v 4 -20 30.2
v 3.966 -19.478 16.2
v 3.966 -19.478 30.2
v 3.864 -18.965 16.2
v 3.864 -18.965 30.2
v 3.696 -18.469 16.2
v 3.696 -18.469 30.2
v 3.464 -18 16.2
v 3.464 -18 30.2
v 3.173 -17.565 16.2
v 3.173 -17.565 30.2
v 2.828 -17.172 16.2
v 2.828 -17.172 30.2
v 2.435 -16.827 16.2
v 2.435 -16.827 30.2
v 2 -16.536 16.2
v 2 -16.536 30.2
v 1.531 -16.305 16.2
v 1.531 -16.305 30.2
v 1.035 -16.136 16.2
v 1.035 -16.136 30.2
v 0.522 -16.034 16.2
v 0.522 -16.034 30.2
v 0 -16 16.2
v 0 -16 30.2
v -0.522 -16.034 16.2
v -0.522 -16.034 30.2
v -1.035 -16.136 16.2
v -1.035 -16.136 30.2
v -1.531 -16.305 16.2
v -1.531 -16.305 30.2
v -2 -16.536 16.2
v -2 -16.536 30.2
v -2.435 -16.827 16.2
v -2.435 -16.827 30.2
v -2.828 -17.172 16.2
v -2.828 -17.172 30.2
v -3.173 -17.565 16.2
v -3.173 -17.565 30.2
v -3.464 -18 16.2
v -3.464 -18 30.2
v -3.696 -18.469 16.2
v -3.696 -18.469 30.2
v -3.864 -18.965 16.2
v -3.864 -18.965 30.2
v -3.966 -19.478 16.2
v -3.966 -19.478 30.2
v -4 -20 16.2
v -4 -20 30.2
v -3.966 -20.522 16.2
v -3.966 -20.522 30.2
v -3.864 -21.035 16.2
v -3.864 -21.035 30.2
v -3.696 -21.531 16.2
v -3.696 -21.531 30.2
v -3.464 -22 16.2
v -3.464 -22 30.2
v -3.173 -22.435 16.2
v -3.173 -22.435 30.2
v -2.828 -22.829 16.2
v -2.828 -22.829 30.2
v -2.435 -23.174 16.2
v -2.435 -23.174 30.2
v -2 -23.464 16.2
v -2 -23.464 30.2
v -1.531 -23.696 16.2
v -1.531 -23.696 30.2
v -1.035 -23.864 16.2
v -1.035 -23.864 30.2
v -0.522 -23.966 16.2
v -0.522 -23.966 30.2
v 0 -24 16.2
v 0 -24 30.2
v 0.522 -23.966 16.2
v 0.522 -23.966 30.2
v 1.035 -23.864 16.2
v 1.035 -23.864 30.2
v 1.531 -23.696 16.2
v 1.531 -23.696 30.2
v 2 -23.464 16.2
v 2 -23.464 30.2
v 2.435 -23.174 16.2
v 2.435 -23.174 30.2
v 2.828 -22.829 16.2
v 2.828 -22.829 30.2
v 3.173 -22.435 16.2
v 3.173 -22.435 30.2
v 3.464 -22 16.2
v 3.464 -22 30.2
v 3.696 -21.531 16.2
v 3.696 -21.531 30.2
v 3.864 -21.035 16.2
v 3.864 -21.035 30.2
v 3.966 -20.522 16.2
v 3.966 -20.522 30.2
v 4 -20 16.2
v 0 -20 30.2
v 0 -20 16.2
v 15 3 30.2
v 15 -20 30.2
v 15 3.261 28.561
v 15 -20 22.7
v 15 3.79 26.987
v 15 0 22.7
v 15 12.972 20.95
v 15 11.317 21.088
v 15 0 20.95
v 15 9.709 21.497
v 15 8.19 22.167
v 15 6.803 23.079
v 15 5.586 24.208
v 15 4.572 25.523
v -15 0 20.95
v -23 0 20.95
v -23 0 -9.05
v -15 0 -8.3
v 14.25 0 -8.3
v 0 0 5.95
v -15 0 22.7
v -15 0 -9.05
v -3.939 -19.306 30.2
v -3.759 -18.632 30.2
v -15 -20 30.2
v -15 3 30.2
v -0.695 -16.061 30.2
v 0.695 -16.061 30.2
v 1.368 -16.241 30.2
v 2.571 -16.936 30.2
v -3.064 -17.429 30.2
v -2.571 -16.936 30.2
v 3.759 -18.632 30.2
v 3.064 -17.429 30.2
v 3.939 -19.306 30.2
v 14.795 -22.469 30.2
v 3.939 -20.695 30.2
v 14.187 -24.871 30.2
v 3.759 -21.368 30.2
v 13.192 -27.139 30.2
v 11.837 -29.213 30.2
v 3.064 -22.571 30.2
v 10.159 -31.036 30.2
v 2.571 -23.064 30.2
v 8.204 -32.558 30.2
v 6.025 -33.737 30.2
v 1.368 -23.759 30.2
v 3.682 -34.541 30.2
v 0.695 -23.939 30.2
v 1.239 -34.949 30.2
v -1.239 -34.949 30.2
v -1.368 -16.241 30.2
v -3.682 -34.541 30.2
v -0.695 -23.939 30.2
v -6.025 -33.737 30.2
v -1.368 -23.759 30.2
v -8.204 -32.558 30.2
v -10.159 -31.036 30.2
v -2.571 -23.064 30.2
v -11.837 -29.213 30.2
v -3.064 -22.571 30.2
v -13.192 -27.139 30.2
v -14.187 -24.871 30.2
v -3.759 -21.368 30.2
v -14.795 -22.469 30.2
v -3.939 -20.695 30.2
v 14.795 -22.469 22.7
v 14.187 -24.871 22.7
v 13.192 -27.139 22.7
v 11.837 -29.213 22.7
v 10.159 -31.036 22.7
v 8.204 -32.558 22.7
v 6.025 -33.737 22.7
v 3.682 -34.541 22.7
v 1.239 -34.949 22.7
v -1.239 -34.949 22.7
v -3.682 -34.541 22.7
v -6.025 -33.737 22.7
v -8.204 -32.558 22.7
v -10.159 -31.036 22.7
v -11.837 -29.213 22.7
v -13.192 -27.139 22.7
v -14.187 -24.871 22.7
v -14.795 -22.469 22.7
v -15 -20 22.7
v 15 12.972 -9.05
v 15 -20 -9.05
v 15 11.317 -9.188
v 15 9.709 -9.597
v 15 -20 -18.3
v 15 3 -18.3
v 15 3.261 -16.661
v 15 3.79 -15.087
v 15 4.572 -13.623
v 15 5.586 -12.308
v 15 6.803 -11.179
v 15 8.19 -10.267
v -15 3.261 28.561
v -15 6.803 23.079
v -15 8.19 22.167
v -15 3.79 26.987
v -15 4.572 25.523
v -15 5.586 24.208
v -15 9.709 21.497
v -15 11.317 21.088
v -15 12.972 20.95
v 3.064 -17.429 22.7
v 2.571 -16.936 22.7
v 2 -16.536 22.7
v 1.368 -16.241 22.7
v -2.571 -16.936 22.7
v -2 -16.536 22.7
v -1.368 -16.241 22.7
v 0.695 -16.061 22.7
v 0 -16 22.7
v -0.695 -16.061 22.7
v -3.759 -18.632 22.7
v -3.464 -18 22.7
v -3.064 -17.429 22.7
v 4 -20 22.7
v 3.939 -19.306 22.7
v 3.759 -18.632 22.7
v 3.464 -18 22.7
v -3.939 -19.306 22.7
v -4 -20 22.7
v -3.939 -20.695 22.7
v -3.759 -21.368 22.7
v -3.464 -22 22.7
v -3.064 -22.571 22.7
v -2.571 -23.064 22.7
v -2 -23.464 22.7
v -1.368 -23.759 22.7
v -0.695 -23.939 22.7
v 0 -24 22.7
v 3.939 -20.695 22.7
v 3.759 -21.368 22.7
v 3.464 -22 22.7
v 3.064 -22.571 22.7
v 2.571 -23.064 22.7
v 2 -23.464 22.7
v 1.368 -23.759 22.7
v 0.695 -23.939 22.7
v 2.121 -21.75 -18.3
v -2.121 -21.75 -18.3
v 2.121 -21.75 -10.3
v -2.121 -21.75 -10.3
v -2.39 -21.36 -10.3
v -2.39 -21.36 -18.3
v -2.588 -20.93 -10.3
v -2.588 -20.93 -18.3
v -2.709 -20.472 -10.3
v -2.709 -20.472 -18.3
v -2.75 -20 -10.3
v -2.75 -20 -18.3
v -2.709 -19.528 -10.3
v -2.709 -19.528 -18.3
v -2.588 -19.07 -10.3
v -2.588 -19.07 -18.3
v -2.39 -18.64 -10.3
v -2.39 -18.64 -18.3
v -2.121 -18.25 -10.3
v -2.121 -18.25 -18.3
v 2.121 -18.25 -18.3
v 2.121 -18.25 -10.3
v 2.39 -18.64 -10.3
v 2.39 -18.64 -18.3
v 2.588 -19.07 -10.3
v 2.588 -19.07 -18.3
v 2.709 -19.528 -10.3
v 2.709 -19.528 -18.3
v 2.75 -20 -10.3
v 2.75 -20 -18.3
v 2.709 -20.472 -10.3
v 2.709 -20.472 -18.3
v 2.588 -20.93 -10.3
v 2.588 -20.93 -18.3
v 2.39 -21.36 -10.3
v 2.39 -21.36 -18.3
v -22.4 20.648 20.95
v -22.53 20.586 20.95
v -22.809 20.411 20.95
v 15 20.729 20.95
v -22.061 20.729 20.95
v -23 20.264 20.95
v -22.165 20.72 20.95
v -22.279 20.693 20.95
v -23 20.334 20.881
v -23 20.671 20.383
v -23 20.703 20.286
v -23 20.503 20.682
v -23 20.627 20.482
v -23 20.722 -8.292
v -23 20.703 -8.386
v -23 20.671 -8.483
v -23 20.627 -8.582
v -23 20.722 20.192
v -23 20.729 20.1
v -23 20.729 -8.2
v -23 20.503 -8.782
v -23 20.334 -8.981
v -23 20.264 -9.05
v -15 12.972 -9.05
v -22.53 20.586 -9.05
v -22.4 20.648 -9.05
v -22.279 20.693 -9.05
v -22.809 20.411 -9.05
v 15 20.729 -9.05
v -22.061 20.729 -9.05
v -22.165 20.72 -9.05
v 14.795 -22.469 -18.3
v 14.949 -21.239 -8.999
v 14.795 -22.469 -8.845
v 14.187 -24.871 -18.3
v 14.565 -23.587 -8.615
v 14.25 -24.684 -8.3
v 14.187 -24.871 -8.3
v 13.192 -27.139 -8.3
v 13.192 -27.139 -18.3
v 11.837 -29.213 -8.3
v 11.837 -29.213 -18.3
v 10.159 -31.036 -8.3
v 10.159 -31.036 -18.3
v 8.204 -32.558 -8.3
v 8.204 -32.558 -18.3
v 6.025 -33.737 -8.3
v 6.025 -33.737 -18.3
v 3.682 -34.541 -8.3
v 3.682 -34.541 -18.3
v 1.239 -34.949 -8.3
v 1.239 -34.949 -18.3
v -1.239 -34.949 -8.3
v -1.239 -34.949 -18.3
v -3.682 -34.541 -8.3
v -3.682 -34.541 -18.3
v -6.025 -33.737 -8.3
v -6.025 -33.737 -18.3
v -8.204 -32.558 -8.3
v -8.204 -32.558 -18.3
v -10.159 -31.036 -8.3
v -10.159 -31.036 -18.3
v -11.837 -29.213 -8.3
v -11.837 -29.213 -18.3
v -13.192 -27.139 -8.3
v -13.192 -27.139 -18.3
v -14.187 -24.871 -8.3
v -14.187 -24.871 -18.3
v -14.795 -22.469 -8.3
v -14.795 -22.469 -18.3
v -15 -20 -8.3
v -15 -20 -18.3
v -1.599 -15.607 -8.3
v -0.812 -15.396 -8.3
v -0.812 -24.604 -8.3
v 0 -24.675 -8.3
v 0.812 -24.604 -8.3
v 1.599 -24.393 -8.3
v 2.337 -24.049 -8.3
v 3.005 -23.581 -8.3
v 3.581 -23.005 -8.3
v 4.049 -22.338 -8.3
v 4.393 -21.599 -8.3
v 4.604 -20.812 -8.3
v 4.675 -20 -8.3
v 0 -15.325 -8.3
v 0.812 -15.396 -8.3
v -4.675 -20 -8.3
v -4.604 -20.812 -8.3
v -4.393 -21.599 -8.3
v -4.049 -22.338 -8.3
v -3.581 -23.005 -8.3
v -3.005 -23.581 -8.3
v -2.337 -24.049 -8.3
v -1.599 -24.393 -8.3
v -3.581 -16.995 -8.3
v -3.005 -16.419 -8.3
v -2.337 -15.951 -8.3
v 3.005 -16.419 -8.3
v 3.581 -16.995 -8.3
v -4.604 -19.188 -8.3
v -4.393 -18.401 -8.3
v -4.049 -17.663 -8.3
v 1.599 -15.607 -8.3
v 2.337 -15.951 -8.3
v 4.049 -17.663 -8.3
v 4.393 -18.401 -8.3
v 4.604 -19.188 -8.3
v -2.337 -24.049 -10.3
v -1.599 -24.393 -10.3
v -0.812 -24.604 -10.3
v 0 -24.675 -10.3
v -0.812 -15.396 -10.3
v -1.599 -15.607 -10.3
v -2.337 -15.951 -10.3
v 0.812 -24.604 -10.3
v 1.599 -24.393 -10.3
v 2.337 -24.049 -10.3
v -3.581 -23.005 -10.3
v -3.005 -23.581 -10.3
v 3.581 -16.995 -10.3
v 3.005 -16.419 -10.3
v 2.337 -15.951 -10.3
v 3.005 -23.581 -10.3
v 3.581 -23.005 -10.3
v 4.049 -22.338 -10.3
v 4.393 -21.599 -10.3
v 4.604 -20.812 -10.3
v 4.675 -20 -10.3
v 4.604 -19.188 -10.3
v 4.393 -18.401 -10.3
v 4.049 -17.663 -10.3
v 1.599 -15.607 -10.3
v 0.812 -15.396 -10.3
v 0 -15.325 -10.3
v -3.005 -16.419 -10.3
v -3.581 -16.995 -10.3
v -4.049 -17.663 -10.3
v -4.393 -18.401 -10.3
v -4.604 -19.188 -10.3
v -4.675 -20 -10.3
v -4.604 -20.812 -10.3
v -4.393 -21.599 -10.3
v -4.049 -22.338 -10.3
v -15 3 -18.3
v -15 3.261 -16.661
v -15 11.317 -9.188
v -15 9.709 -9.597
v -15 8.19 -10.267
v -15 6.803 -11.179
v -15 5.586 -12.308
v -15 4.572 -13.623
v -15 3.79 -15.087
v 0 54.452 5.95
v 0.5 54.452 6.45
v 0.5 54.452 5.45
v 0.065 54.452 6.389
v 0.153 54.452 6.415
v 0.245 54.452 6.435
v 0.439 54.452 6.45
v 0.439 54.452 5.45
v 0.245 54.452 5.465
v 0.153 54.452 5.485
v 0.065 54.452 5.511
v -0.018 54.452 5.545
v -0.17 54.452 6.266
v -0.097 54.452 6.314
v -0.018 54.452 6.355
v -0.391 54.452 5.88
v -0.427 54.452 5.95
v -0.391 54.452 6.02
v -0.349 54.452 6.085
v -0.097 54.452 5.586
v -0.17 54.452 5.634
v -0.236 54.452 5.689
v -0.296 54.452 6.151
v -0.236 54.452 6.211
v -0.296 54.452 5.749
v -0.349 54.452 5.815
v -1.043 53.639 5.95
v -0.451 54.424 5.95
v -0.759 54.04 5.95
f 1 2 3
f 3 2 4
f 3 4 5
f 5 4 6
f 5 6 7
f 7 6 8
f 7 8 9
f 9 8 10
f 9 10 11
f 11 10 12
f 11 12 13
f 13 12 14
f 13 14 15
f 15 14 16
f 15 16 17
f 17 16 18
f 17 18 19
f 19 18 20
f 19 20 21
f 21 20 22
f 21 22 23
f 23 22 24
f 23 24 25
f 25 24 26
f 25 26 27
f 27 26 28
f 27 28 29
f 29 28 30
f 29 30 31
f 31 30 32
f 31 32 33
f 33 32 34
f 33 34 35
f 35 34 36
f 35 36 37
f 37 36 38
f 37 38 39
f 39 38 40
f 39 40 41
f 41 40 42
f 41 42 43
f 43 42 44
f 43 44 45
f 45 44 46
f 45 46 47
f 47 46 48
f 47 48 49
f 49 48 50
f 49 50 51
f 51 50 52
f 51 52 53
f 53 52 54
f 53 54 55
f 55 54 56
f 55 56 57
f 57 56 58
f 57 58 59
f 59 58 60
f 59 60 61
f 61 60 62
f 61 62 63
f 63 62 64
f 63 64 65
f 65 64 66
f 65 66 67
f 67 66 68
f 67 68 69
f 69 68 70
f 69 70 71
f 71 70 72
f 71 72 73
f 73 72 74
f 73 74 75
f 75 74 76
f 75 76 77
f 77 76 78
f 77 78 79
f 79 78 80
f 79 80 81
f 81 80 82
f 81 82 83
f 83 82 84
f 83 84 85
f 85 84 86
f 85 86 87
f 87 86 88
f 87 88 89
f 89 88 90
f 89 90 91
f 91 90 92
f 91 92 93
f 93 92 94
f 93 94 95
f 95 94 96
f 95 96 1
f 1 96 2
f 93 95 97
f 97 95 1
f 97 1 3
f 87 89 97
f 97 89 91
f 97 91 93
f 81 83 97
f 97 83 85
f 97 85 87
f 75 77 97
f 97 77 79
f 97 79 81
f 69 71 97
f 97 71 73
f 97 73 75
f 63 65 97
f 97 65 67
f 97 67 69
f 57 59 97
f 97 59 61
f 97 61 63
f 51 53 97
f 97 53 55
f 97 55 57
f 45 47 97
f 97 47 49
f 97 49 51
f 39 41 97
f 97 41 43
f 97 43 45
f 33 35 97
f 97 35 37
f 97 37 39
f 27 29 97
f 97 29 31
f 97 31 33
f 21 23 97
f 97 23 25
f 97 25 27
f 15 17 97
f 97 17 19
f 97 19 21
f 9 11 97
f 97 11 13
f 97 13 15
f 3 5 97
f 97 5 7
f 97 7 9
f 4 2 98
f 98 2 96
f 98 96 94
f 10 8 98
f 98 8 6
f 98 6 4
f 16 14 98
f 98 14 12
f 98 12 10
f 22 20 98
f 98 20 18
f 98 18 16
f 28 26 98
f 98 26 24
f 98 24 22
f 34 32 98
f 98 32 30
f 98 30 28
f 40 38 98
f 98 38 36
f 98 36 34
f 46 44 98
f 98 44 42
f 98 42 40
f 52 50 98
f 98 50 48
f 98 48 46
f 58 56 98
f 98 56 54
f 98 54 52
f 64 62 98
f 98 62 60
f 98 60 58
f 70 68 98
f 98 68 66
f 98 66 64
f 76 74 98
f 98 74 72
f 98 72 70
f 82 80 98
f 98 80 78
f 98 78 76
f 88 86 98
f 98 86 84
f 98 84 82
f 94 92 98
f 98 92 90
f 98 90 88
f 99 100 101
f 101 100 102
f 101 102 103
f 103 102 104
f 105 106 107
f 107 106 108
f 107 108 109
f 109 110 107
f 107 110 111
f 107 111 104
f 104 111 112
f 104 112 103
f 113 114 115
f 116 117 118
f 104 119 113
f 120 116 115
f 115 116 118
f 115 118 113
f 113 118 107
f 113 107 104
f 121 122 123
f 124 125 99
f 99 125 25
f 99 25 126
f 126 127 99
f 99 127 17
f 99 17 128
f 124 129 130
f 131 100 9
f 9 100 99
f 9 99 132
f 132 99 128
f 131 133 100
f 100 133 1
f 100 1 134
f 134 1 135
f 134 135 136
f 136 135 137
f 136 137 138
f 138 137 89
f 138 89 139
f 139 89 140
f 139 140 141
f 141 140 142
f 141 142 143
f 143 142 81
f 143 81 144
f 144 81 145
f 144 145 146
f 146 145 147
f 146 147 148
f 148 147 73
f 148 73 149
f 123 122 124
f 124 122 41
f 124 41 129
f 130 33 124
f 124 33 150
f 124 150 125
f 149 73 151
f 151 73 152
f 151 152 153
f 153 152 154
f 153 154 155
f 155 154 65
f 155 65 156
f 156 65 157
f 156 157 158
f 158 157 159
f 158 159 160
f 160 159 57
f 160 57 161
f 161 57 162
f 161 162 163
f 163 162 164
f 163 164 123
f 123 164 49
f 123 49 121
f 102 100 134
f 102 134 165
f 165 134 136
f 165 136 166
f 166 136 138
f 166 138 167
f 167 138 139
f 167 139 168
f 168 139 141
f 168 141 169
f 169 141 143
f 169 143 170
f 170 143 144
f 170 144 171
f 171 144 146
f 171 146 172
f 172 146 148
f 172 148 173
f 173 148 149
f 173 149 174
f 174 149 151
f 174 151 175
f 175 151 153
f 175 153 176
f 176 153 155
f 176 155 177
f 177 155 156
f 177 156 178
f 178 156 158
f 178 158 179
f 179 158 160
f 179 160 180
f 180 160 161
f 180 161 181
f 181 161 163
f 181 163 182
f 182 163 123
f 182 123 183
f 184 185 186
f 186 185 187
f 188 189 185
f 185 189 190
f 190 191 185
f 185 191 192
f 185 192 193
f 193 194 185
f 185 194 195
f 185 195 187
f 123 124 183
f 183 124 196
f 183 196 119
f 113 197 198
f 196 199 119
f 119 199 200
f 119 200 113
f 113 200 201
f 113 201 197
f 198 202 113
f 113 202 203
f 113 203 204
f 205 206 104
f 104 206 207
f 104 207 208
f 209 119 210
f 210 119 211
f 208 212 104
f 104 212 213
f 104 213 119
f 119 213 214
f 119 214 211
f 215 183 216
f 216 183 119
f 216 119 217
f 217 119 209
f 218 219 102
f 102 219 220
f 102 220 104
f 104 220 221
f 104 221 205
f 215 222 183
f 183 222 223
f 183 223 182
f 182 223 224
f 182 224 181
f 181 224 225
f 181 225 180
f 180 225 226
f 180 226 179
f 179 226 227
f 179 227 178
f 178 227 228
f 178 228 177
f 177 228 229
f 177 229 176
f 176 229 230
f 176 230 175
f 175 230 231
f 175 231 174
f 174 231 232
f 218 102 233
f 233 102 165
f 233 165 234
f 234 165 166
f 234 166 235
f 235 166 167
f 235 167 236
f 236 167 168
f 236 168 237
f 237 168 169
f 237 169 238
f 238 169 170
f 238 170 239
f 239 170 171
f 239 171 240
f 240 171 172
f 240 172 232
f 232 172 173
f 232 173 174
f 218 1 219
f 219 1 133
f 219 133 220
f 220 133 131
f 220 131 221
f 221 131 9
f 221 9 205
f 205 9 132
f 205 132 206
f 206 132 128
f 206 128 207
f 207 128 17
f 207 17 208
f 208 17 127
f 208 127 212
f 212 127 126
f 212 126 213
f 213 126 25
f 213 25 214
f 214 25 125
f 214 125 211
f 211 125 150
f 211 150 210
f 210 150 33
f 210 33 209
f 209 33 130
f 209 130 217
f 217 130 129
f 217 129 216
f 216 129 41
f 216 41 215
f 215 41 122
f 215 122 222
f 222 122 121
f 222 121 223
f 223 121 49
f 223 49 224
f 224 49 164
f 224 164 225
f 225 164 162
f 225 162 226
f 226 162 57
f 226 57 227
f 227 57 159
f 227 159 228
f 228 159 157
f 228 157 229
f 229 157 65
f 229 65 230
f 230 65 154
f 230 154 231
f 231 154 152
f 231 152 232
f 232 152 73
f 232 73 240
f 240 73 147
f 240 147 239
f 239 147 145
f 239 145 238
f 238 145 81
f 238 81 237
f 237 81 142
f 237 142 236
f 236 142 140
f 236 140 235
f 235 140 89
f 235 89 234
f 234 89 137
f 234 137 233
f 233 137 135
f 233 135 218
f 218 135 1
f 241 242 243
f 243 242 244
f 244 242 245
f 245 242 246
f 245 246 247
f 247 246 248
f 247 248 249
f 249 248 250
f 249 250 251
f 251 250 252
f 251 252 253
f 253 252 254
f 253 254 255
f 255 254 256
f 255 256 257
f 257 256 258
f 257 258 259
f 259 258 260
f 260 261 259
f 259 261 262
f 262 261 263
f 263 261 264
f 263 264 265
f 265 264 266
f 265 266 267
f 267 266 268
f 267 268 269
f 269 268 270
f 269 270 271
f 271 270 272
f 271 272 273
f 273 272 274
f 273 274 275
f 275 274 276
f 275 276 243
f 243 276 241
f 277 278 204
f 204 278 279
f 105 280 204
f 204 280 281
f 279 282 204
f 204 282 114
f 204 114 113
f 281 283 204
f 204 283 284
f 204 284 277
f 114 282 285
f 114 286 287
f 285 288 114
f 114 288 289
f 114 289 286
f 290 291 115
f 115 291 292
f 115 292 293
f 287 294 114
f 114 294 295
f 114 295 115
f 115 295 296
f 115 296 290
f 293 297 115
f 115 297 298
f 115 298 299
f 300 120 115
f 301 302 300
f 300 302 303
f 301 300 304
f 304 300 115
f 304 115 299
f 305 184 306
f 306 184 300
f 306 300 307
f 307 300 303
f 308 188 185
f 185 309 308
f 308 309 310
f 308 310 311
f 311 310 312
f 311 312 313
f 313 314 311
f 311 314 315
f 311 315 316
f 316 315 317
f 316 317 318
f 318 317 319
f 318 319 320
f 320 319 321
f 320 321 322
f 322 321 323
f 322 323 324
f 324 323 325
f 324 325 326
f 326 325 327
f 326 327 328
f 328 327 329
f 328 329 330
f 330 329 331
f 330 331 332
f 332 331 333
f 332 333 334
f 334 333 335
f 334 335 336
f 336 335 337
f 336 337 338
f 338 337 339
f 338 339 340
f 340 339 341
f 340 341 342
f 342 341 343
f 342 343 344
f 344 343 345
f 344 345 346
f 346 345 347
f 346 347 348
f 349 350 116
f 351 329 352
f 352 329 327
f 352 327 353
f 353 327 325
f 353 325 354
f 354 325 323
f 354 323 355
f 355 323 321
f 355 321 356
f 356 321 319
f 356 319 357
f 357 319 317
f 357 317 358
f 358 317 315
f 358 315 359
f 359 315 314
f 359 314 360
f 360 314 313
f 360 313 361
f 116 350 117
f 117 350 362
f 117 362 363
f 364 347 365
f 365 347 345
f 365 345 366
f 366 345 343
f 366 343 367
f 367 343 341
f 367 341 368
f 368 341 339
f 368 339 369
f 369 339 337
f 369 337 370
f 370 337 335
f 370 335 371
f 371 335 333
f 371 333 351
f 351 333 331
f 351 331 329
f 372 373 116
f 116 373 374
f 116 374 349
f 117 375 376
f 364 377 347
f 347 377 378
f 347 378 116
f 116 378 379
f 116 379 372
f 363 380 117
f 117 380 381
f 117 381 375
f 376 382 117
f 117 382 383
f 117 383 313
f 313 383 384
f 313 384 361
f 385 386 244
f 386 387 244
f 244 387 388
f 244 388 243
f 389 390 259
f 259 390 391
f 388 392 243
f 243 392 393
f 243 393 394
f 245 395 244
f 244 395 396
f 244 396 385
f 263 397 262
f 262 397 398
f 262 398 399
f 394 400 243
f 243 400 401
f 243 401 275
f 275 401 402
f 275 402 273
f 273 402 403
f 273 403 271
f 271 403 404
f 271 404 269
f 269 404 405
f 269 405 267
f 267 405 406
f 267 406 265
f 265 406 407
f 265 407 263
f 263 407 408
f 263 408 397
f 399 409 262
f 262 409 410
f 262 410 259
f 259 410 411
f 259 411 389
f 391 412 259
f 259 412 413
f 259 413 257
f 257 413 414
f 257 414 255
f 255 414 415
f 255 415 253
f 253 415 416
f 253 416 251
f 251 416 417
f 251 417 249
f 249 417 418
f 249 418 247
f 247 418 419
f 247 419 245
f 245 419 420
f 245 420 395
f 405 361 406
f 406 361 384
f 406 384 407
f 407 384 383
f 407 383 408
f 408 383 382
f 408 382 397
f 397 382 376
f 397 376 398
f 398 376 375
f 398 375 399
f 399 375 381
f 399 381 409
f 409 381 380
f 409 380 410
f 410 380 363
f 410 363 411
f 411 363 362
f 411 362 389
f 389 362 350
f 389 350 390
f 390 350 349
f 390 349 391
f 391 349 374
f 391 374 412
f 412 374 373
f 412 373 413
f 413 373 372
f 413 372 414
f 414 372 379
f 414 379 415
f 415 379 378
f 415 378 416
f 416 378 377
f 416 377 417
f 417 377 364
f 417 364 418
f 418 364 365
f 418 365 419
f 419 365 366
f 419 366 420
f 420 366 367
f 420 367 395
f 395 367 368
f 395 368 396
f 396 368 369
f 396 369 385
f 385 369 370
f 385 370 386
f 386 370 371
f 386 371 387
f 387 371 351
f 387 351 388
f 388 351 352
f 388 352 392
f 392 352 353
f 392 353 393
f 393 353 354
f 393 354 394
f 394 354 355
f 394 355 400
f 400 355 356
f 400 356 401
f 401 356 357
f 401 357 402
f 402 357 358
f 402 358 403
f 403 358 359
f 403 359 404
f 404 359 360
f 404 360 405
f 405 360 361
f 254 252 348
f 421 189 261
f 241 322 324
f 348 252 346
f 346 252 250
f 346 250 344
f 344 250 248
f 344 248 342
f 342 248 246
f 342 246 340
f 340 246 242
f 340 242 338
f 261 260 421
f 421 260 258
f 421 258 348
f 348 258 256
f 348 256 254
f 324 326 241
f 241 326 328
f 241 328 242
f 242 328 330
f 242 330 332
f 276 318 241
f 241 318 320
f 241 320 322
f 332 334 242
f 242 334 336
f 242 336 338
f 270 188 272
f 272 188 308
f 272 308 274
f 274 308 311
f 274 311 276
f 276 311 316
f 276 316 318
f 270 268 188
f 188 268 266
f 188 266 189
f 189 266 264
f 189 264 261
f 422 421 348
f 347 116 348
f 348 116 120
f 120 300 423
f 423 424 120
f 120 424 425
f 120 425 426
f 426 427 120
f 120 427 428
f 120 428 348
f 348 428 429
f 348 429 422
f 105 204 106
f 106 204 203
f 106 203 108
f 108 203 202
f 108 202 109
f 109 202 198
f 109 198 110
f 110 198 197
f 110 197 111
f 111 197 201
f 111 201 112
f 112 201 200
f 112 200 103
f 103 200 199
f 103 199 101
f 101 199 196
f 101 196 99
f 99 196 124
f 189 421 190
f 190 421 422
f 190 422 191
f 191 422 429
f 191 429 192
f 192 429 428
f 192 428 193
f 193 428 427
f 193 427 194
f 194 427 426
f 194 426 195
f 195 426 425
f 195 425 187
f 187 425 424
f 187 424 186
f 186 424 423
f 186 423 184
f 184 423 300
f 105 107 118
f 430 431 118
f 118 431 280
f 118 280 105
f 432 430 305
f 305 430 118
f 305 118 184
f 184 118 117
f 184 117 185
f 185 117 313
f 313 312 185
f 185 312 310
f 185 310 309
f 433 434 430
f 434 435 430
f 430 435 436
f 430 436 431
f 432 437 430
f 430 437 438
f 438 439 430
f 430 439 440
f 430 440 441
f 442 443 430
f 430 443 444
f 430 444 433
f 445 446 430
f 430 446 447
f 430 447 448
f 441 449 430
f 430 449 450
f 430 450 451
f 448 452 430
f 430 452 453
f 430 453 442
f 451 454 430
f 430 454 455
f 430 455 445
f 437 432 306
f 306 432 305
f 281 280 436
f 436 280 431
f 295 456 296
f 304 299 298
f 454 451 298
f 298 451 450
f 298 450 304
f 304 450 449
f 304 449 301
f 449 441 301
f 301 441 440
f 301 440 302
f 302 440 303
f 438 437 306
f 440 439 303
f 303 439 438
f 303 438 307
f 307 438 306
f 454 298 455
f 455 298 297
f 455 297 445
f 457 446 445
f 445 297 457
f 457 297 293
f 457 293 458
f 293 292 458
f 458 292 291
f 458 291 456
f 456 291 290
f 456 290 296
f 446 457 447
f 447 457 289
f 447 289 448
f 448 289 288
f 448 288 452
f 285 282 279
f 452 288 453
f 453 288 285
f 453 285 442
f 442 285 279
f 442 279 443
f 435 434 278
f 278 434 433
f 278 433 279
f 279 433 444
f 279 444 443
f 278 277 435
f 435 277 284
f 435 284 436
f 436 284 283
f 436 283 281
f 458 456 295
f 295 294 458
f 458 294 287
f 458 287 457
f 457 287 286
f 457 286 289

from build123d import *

# Parameters (mm, degrees)
BOSS_EXTRUDE1_DEPTH      = 20.95
BOSS_EXTRUDE2_START      = -9.05
BOSS_EXTRUDE2_DEPTH      = 9.05
SKETCH6_R                = 2
CUT_EXTRUDE2_DEPTH       = 10
CUT_EXTRUDE3_DEPTH       = 2.75
CUT_EXTRUDE4_DEPTH       = 67.499081444
CUT_EXTRUDE4_DEPTH_BACK  = 67.499081444
SKETCH8_W                = 8.290514233
SKETCH8_H                = 3.25
SKETCH11_R               = 11.15
BEARING_HOLE_DEPTH       = 7.3
SKETCH12_W               = 46
SKETCH12_H               = 30
BOSS_EXTRUDE3_DEPTH      = 0.0001
BOSS_EXTRUDE4_DEPTH      = 9.25
BOSS_EXTRUDE4_DEPTH_BACK = 39.25
SKETCH14_W               = 31
SKETCH14_H               = 35
CUT_EXTRUDE5_DEPTH       = 74.138005393
SKETCH15_R               = 4
CUT_EXTRUDE6_DEPTH       = 77.644489906
SKETCH17_R               = 6.169612062
BOSS_EXTRUDE5_DEPTH      = 10
SKETCH18_R               = 4
BOSS_EXTRUDE6_DEPTH      = 14
SKETCH19_R               = 4.675
CUT_EXTRUDE7_DEPTH       = 2
BOSS_EXTRUDE7_START      = -39.25
SKETCH20_W               = 30
SKETCH20_H               = 3
BOSS_EXTRUDE7_DEPTH      = 48.5
FILLET1_R                = 10
SKETCH22_W               = 17.22069039
SKETCH22_H               = 30
CUT_EXTRUDE8_DEPTH       = 67.589629634
SKETCH25_W               = 38.779549847
SKETCH25_H               = 44.55932685
CUT_EXTRUDE10_DEPTH      = 72.152584865
BOSS_EXTRUDE9_DEPTH      = 40
CUT_EXTRUDE11_DEPTH      = 73.945914552
CUT_EXTRUDE12_DEPTH      = 71.955119264
CUT_EXTRUDE13_DEPTH      = 63.342538471
FILLET2_R                = 1


with BuildPart() as part:
    # Sketch2 → Boss-Extrude1 (new body)
    with BuildSketch(Plane.XY):
        with BuildLine():
            Line((-14.709485767, 40), (-23, 40))
            Line((-23, 40), (-23, 0))
            Line((-23, 0), (23, 0))
            Line((23, 0), (23, 40))
            Line((23, 40), (14.709485767, 40))
            ThreePointArc((14.709485767, 40), (0, 54.709485767), (-14.709485767, 40))
        make_face()
        with BuildLine():
            Line((-7.55, 18.241114036), (-7.55, 14.75))
            Line((-7.55, 14.75), (7.55, 14.75))
            Line((7.55, 14.75), (7.55, 18.241114036))
            Line((7.55, 18.241114036), (9.25, 18.241114036))
            Line((9.25, 18.241114036), (9.25, 21.160258306))
            ThreePointArc((9.25, 21.160258306), (0, 46.25), (-9.25, 21.160258306))
            Line((-9.25, 21.160258306), (-9.25, 18.241114036))
            Line((-9.25, 18.241114036), (-7.55, 18.241114036))
        make_face(mode=Mode.SUBTRACT)
    extrude(amount=BOSS_EXTRUDE1_DEPTH)

    # Sketch3 → Boss-Extrude2 (add)
    with BuildSketch(Plane.XY.offset(BOSS_EXTRUDE2_START)):
        with BuildLine():
            Line((-14.709485767, 40), (-23, 40))
            Line((-23, 40), (-23, 0))
            Line((-23, 0), (23, 0))
            Line((23, 0), (23, 40))
            Line((23, 40), (14.709485767, 40))
            ThreePointArc((14.709485767, 40), (0, 54.709485767), (-14.709485767, 40))
        make_face()
    extrude(amount=BOSS_EXTRUDE2_DEPTH)

    # Sketch6 → Cut-Extrude2 (cut)
    with BuildSketch(Plane.XY.offset(20.95)):
        with Locations((-17.5, 32)):
            Circle(SKETCH6_R)
        with Locations((17.5, 32)):
            Circle(SKETCH6_R)
    extrude(amount=-CUT_EXTRUDE2_DEPTH, mode=Mode.SUBTRACT)

    # Sketch7 → Cut-Extrude3 (cut)
    with BuildSketch(Plane.XY.offset(20.95)):
        with BuildLine():
            Line((-17.5, 35.75), (17.5, 35.75))
            ThreePointArc((17.5, 35.75), (21.25, 32), (17.5, 28.25))
            Line((17.5, 28.25), (-17.5, 28.25))
            ThreePointArc((-17.5, 28.25), (-21.25, 32), (-17.5, 35.75))
        make_face()
    extrude(amount=-CUT_EXTRUDE3_DEPTH, mode=Mode.SUBTRACT)

    # Sketch8 → Cut-Extrude4 (cut, two sides: drawn at the far end of the back side and taken through both)
    with BuildSketch(Plane.XY.offset(20.95).offset(-CUT_EXTRUDE4_DEPTH_BACK)):
        with Locations((-18.854742884, 38.375)):
            Rectangle(SKETCH8_W, SKETCH8_H)
        with Locations((18.854742884, 38.375)):
            Rectangle(SKETCH8_W, SKETCH8_H)
    extrude(amount=CUT_EXTRUDE4_DEPTH + CUT_EXTRUDE4_DEPTH_BACK, mode=Mode.SUBTRACT)

    # Sketch11 → Bearing Hole (cut)
    with BuildSketch(Plane(origin=(0, 0, -9.05), x_dir=(-1, 0, 0), z_dir=(0, 0, -1))):
        with Locations((0, 40)):
            Circle(SKETCH11_R)
    extrude(amount=-BEARING_HOLE_DEPTH, mode=Mode.SUBTRACT)

    # Sketch12 → Boss-Extrude3 (add)
    with BuildSketch(Plane.XZ):
        with Locations((0, 5.95)):
            Rectangle(SKETCH12_W, SKETCH12_H)
    extrude(amount=BOSS_EXTRUDE3_DEPTH)

    # Sketch13 → Boss-Extrude4 (add, two sides: drawn at the far end of the back side and taken through both)
    with BuildSketch(Plane.XY.offset(20.95).offset(-BOSS_EXTRUDE4_DEPTH_BACK)):
        with BuildLine():
            Line((-15, -0.0001), (15, -0.0001))
            Line((15, -0.0001), (15, -20.0001))
            ThreePointArc((15, -20.0001), (0, -35.0001), (-15, -20.0001))
            Line((-15, -20.0001), (-15, -0.0001))
        make_face()
    extrude(amount=BOSS_EXTRUDE4_DEPTH + BOSS_EXTRUDE4_DEPTH_BACK)

    # Sketch14 → Cut-Extrude5 (cut, through all)
    with BuildSketch(Plane.ZY.offset(15)):
        with Locations((7.2, -17.5001)):
            Rectangle(SKETCH14_W, SKETCH14_H)
    extrude(amount=-CUT_EXTRUDE5_DEPTH, mode=Mode.SUBTRACT)


with BuildPart() as cut_extrude5_piece_1:
    # of the separate pieces the step leaves, piece 1, a body of its own (cut_extrude5_pieces)
    add(part.part.solids().sort_by_distance((14.709485767, 40, 20.95))[0])


with BuildPart() as cut_extrude5_piece_2:
    # of the separate pieces the step leaves, piece 2, a body of its own (cut_extrude5_pieces)
    add(part.part.solids().sort_by_distance((-15, -0.0001, 30.2))[0])


with BuildPart() as cut_extrude6_tool:
    # Sketch15 → Cut-Extrude6 (new, through all)
    with BuildSketch(Plane.XY.offset(30.2)):
        with Locations((0, -20.0001)):
            Circle(SKETCH15_R)
    extrude(amount=-CUT_EXTRUDE6_DEPTH)


with BuildPart() as cut_extrude5_piece_1_1:
    add(cut_extrude5_piece_1.part)

    # Cut-Extrude6: cut by cut_extrude6_tool
    add(cut_extrude6_tool.part, mode=Mode.SUBTRACT)

    # Sketch17 → Boss-Extrude5 (add)
    with BuildSketch(Plane(origin=(0, 0, -18.3), x_dir=(-1, 0, 0), z_dir=(0, 0, -1))):
        with Locations((0, -20.0001)):
            Circle(SKETCH17_R)
        with BuildLine():
            Line((-2.121320344, -18.2501), (2.121320344, -18.2501))
            ThreePointArc((2.121320344, -18.2501), (2.75, -20.0001), (2.121320344, -21.7501))
            Line((2.121320344, -21.7501), (-2.121320344, -21.7501))
            ThreePointArc((-2.121320344, -21.7501), (-2.75, -20.0001), (-2.121320344, -18.2501))
        make_face(mode=Mode.SUBTRACT)
    extrude(amount=-BOSS_EXTRUDE5_DEPTH)

    # Sketch19 → Cut-Extrude7 (cut)
    with BuildSketch(Plane.XY.offset(-8.3)):
        with Locations((0, -20.0001)):
            Circle(SKETCH19_R)
    extrude(amount=-CUT_EXTRUDE7_DEPTH, mode=Mode.SUBTRACT)



with BuildPart() as cut_extrude5_piece_2_1:
    add(cut_extrude5_piece_2.part)

    # Cut-Extrude6: cut by cut_extrude6_tool
    add(cut_extrude6_tool.part, mode=Mode.SUBTRACT)


with BuildPart() as body_3:
    # Sketch18 → Boss-Extrude6 (new body)
    with BuildSketch(Plane.XY.offset(30.2)):
        with Locations((0, -20.0001)):
            Circle(SKETCH18_R)
    extrude(amount=-BOSS_EXTRUDE6_DEPTH)


with BuildPart() as cut_extrude5_piece_1_2:
    add(cut_extrude5_piece_1_1.part)

    add(cut_extrude5_piece_2_1.part)  # Boss-Extrude7 merges Cut-Extrude5 piece 2
    # Sketch20 → Boss-Extrude7 (add)
    with BuildSketch(Plane.XY.offset(20.95).offset(BOSS_EXTRUDE7_START)):
        with Locations((0, 1.4999)):
            Rectangle(SKETCH20_W, SKETCH20_H)
    extrude(amount=BOSS_EXTRUDE7_DEPTH)

    # Fillet1
    # the kernel refuses this fillet: 10 mm, written as the material it adds along each edge
    with BuildSketch(Plane(origin=(-15, 2.9999, 20.95), x_dir=(0, 1, 0), z_dir=(1, 0, 0))) as fillet1_piece_1:
        with BuildLine():
            CenterArc((9.971835338, 10), FILLET1_R, 184.301222305, 85.698777695)
            Line((0, 9.25), (-0.199436707, 9.235))
            ThreePointArc((-0.199436707, 9.235), (-0.2, 4.625), (-0.2, 0))
            Line((-0.2, 0), (0, -0.2))
            Line((0, -0.2), (9.971835338, -0.2))
            Line((9.971835338, -0.2), (9.971835338, 0))
        make_face()
    extrude(amount=30)
    with BuildSketch(Plane(origin=(-15, 2.9999, -9.05), x_dir=(0, 0, -1), z_dir=(1, 0, 0))) as fillet1_piece_2:
        with BuildLine():
            CenterArc((10, 9.971835338), FILLET1_R, 180, 85.698777695)
            Line((0, 9.971835338), (-0.2, 9.971835338))
            Line((-0.2, 9.971835338), (-0.2, 0))
            Line((-0.2, 0), (0, -0.2))
            ThreePointArc((0, -0.2), (4.625, -0.2), (9.235, -0.199436707))
            Line((9.235, -0.199436707), (9.25, 0))
        make_face()
    extrude(amount=30)

    # Sketch22 → Cut-Extrude8 (cut, through all)
    with BuildSketch(Plane.XZ.offset(0.0001)):
        with Locations((23.610345195, 5.95)):
            Rectangle(SKETCH22_W, SKETCH22_H)
    extrude(amount=-CUT_EXTRUDE8_DEPTH, mode=Mode.SUBTRACT)

    # Sketch25 → Cut-Extrude10 (cut, through all)
    with BuildSketch(Plane(origin=(0, 0, -9.05), x_dir=(-1, 0, 0), z_dir=(0, 0, -1))):
        with Locations((3.610225076, 36.732087153)):
            Rectangle(SKETCH25_W, SKETCH25_H)
    extrude(amount=-CUT_EXTRUDE10_DEPTH, mode=Mode.SUBTRACT)

    # Sketch38 → Boss-Extrude9 (add)
    with BuildSketch(Plane(origin=(0, 14.452423728, 0), x_dir=(1, 0, 0), z_dir=(0, 1, 0))):
        Polygon((15, 9.05), (0, -5.95), (15, -20.95), (-23, -20.95), (-23, 9.05), align=None)
    extrude(amount=BOSS_EXTRUDE9_DEPTH)

    # Sketch39 → Cut-Extrude11 (cut, through all)
    with BuildSketch(Plane.ZY.offset(23)):
        Polygon((6.45, 54.452423728), (20.95, 54.452423728), (20.95, 20.728867261), align=None)
        Polygon((-9.05, 54.452423728), (-9.05, 20.728867261), (5.45, 54.452423728), align=None)
    extrude(amount=-CUT_EXTRUDE11_DEPTH, mode=Mode.SUBTRACT)

    # Sketch40 → Cut-Extrude12 (cut, through all)
    with BuildSketch(Plane.XY.offset(20.95)):
        Polygon((-23, 54.452423728), (-0.5, 54.452423728), (-23, 20.728867261), align=None)
    extrude(amount=-CUT_EXTRUDE12_DEPTH, mode=Mode.SUBTRACT)

    # Sketch41 → Cut-Extrude13 (cut, through all)
    with BuildSketch(Plane(origin=(0, 14.452423728, 0), x_dir=(1, 0, 0), z_dir=(0, 1, 0))):
        Polygon((15, 9.05), (0, -5.95), (15, -20.95), align=None)
    extrude(amount=-CUT_EXTRUDE13_DEPTH, mode=Mode.SUBTRACT)

    # Fillet2
    # the kernel refuses this fillet: 1 mm, written as the material it takes off along each edge
    with BuildSketch(Plane(origin=(0.545475798, 56.01940871, 5.77624893), x_dir=(-0.18691021617579237, -0.2801456546378411, -0.9415853563414492), z_dir=(-0.5225810121185461, -0.7832573453532435, 0.3367744300319518)), Plane(origin=(0.545475798, 56.01940871, 6.12375107), x_dir=(0.8525896350373701, -0.4800849077481965, -0.20642043401574758), z_dir=(-0.5225810121185461, -0.7832573453532435, -0.3367744300319518))) as fillet2_piece_1:
        with BuildLine():
            CenterArc((FILLET2_R * 0.800240172067, FILLET2_R), FILLET2_R, 192.663603939, 77.336396061)
            Line((-FILLET2_R * 0.175433828194, FILLET2_R * 0.78077352985), (0, 0))
            Line((0, 0), (FILLET2_R * 0.800240172067, 0))
        make_face()
    extrude(amount=47.056726182, mode=Mode.SUBTRACT)


solid = Compound([body_3.part, cut_extrude5_piece_1_2.part])
